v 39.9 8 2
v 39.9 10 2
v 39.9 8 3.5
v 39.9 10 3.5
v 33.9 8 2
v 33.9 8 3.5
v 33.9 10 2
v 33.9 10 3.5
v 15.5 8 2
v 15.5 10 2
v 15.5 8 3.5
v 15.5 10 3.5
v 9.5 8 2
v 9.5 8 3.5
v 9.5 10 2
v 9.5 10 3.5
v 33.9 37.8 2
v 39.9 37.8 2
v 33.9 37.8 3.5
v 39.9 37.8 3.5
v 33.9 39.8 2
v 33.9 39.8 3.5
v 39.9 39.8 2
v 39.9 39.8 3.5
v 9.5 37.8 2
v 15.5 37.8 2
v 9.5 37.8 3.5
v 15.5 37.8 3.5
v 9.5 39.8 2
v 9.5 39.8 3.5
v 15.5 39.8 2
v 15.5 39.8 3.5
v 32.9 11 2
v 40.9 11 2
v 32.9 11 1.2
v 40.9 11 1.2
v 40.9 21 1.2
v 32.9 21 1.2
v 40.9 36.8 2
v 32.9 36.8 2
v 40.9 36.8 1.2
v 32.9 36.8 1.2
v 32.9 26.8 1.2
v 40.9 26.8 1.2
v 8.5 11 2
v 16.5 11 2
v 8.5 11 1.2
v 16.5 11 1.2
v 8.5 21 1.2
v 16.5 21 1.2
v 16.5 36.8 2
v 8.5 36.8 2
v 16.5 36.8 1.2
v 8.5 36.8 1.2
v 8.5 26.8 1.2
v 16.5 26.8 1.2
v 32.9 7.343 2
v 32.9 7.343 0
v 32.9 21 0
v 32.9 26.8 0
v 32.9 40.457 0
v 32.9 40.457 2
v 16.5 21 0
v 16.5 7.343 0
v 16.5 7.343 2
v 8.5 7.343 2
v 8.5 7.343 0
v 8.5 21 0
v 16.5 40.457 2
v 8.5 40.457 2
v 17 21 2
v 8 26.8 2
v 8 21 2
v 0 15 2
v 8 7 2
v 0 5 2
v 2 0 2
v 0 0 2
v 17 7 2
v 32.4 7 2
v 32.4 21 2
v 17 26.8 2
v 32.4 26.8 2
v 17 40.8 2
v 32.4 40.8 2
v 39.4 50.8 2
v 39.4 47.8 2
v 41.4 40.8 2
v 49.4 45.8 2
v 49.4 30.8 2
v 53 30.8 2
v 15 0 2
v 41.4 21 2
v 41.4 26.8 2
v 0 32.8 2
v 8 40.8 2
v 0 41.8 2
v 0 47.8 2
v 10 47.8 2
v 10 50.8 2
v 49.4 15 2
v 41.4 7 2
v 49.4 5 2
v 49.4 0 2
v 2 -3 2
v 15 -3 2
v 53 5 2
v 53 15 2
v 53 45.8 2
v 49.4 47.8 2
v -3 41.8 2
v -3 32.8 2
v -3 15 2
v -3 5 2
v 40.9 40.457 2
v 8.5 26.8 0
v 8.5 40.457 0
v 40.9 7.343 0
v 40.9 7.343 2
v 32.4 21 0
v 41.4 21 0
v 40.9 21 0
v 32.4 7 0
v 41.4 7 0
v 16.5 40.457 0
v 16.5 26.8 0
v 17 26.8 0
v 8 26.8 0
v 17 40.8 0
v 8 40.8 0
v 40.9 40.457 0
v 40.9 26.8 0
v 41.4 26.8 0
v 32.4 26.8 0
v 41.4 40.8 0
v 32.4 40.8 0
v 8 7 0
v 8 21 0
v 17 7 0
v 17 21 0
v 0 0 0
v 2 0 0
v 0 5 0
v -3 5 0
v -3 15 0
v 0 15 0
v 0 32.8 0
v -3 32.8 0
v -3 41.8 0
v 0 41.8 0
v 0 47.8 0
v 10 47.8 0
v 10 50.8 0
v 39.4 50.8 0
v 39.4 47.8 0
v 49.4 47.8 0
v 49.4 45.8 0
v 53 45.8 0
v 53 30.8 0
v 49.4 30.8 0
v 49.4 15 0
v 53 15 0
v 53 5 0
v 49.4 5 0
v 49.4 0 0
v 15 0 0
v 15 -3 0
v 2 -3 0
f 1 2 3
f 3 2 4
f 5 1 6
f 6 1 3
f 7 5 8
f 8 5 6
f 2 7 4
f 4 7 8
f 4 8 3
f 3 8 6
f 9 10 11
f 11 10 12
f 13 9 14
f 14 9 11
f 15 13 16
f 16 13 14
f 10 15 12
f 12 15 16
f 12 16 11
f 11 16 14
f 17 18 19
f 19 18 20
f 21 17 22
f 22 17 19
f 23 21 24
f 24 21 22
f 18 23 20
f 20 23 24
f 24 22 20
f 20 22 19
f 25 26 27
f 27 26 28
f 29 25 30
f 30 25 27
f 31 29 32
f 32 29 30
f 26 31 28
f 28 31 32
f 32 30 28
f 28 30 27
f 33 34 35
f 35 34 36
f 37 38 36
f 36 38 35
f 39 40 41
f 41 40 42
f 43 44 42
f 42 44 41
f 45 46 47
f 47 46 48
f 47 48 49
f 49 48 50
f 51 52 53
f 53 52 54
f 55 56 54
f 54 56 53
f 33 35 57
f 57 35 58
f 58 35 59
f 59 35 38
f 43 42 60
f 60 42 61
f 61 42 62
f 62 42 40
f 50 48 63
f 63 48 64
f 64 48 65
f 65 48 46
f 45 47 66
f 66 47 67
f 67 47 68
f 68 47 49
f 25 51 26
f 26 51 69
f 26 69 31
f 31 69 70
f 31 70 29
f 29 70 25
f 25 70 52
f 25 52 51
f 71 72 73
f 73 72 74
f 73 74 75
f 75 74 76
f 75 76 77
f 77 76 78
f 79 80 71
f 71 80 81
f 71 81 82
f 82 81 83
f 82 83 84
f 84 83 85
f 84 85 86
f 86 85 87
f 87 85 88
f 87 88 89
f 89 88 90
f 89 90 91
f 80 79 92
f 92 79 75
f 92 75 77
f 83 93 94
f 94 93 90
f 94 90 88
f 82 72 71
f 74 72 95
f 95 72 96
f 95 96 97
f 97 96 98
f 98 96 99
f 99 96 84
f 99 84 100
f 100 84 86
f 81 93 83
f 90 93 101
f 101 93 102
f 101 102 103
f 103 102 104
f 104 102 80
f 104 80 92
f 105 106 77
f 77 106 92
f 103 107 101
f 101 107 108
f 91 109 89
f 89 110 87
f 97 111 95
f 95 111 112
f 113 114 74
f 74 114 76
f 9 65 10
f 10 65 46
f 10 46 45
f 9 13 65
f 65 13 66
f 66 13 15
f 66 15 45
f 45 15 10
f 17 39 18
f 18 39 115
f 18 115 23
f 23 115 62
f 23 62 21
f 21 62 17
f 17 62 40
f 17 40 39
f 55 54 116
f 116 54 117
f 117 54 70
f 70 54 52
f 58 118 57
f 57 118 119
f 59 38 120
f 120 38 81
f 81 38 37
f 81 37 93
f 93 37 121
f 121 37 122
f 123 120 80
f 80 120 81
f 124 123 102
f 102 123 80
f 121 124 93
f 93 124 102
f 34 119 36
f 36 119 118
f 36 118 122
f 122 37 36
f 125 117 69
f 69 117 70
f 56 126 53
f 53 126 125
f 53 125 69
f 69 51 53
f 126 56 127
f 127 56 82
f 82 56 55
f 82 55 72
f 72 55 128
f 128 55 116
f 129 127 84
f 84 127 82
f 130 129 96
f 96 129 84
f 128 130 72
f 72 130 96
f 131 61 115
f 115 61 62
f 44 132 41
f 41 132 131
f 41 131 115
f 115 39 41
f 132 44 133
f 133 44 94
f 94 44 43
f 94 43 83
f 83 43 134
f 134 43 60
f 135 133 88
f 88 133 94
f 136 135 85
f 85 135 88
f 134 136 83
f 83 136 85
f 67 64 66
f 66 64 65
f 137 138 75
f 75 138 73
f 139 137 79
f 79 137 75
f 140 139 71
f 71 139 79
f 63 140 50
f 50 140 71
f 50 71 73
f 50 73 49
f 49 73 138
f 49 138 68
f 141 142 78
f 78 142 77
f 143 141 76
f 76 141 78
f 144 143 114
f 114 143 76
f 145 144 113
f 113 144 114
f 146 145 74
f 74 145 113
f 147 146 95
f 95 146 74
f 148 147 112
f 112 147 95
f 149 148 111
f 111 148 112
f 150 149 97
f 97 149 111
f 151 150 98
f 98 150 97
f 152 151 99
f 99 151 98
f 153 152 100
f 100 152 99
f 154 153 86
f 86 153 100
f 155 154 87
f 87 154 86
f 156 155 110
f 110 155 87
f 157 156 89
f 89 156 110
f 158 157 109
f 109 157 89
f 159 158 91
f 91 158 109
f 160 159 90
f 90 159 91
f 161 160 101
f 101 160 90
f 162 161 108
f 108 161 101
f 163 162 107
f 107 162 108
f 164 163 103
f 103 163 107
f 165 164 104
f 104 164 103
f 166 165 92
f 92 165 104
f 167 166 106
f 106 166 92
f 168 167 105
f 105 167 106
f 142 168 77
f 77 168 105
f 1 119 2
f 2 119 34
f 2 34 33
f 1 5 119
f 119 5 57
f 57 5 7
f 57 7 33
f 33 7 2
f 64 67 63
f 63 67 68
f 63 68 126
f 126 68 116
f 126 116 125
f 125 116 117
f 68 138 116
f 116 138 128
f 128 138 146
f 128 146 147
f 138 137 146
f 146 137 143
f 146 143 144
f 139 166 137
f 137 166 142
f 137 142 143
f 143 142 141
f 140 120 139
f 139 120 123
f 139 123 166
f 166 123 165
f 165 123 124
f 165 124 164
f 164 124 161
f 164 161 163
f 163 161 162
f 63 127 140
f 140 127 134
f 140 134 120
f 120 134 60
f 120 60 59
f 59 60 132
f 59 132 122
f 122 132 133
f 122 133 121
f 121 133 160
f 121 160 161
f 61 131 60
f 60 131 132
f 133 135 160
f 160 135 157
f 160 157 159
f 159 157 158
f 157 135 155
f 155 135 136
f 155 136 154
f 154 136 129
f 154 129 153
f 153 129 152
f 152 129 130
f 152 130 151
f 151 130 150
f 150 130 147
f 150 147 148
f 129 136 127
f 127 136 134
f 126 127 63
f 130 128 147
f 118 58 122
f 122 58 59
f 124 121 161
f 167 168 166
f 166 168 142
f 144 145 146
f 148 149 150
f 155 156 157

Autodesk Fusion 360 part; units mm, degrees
sketch "Sketch1" plane through (0, 0, 0) normal (0, 0, 1) x (1, 0, 0)
  line L0 (0, 47.8) -> (49.4, 47.8)
  line L1 (49.4, 47.8) -> (49.4, 0)
  line L2 (49.4, 0) -> (0, 0)
  line L3 (0, 0) -> (0, 47.8)
  line L4 (10, 47.8) -> (10, 50.8)
  line L5 (10, 50.8) -> (39.4, 50.8)
  line L6 (39.4, 50.8) -> (39.4, 47.8)
  line L7 (49.4, 45.8) -> (53, 45.8)
  line L8 (53, 45.8) -> (53, 30.8)
  line L9 (53, 30.8) -> (49.4, 30.8)
  line L10 (49.4, 15) -> (53, 15)
  line L11 (53, 15) -> (53, 5)
  line L12 (53, 5) -> (49.4, 5)
  line L13 (0, 41.8) -> (-3, 41.8)
  line L14 (-3, 41.8) -> (-3, 32.8)
  line L15 (-3, 32.8) -> (0, 32.8)
  line L16 (2, 0) -> (2, -3)
  line L17 (2, -3) -> (15, -3)
  line L18 (15, -3) -> (15, 0)
  line L19 (0, 5) -> (-3, 5)
  line L20 (-3, 5) -> (-3, 15)
  line L21 (-3, 15) -> (0, 15)
  line L22 (8.5, 36.8) -> (8.5, 26.8)
  line L23 (8.5, 26.8) -> (8, 26.8)
  line L24 (8, 26.8) -> (8, 40.8)
  line L25 (8, 40.8) -> (17, 40.8)
  line L26 (17, 40.8) -> (17, 26.8)
  line L27 (17, 26.8) -> (16.5, 26.8)
  line L28 (16.5, 26.8) -> (16.5, 36.8)
  line L29 (16.5, 36.8) -> (8.5, 36.8)
  line L30 (9.5, 39.8) -> (9.5, 37.8)
  line L31 (9.5, 37.8) -> (15.5, 37.8)
  line L32 (15.5, 37.8) -> (15.5, 39.8)
  line L33 (15.5, 39.8) -> (9.5, 39.8)
  line L34 (8.5, 36.8) -> (8.5, 40.4566)
  line L35 (8.5, 40.4566) -> (16.5, 40.4566)
  line L36 (16.5, 40.4566) -> (16.5, 36.8)
  line L37 (8.5, 26.8) -> (16.5, 26.8)
  line L38 (33.9, 39.8) -> (33.9, 37.8)
  line L39 (32.9, 36.8) -> (32.9, 40.4566)
  line L40 (32.9, 26.8) -> (32.4, 26.8)
  line L41 (32.4, 26.8) -> (32.4, 40.8)
  line L42 (40.9, 26.8) -> (40.9, 36.8)
  line L43 (40.9, 36.8) -> (32.9, 36.8)
  line L44 (32.4, 40.8) -> (41.4, 40.8)
  line L45 (40.9, 40.4566) -> (40.9, 36.8)
  line L46 (32.9, 36.8) -> (32.9, 26.8)
  line L47 (41.4, 40.8) -> (41.4, 26.8)
  line L48 (32.9, 40.4566) -> (40.9, 40.4566)
  line L49 (41.4, 26.8) -> (40.9, 26.8)
  line L50 (32.9, 26.8) -> (40.9, 26.8)
  line L51 (33.9, 37.8) -> (39.9, 37.8)
  line L52 (39.9, 37.8) -> (39.9, 39.8)
  line L53 (39.9, 39.8) -> (33.9, 39.8)
  line L54 (16.5, 11) -> (16.5, 7.3434)
  line L55 (40.9, 11) -> (40.9, 7.3434)
  line L56 (39.9, 8) -> (39.9, 10)
  line L57 (16.5, 21) -> (17, 21)
  line L58 (41.4, 21) -> (41.4, 7)
  line L59 (15.5, 10) -> (9.5, 10)
  line L60 (32.9, 11) -> (40.9, 11)
  line L61 (16.5, 11) -> (16.5, 21)
  line L62 (15.5, 8) -> (15.5, 10)
  line L63 (40.9, 21) -> (41.4, 21)
  line L64 (9.5, 8) -> (15.5, 8)
  line L65 (40.9, 11) -> (40.9, 21)
  line L66 (16.5, 7.3434) -> (8.5, 7.3434)
  line L67 (40.9, 21) -> (32.9, 21)
  line L68 (32.4, 21) -> (32.9, 21)
  line L69 (9.5, 10) -> (9.5, 8)
  line L70 (41.4, 7) -> (32.4, 7)
  line L71 (33.9, 8) -> (39.9, 8)
  line L72 (40.9, 7.3434) -> (32.9, 7.3434)
  line L73 (39.9, 10) -> (33.9, 10)
  line L74 (32.9, 7.3434) -> (32.9, 11)
  line L75 (33.9, 10) -> (33.9, 8)
  line L76 (17, 21) -> (17, 7)
  line L77 (8, 7) -> (8, 21)
  line L78 (32.4, 7) -> (32.4, 21)
  line L79 (8.5, 7.3434) -> (8.5, 11)
  line L80 (16.5, 21) -> (8.5, 21)
  line L81 (8.5, 21) -> (8.5, 11)
  line L82 (17, 7) -> (8, 7)
  line L83 (32.9, 21) -> (32.9, 11)
  line L84 (8, 21) -> (8.5, 21)
  line L85 (8.5, 11) -> (16.5, 11)
  point P0 (24.7, 23.9)
  dimension "d1" = 49.4
  dimension "d2" = 47.8
  dimension "d3" = 2
  dimension "d4" = 15
  dimension "d5" = 3
  dimension "d6" = 5
  dimension "d7" = 10
  dimension "d8" = 3
  dimension "d9" = 6
  dimension "d10" = 15
  dimension "d11" = 3
  dimension "d12" = 10
  dimension "d13" = 10
  dimension "d14" = 3
  dimension "d15" = 2
  dimension "d16" = 15
  dimension "d17" = 5
  dimension "d18" = 10
  dimension "d19" = 0.5
  dimension "d20" = 0.5
  dimension "d21" = 10
  dimension "d23" = 1
  dimension "d24" = 1
  dimension "d26" = 2
  dimension "d27" = 1
  dimension "d28" = 1
  dimension "d29" = 7
  dimension "d30" = 8
  dimension "d31" = 24.7
  dimension "d32" = 23.9
  dimension "d33" = 8
  dimension "d34" = 9
  dimension "d37" = 24.4
  dimension "d38" = 0
  dimension "d40" = 360
extrude "Extrude1" add sketch "Sketch1" along normal blind 2 contours L0 L1 L2 L3 | L0 L4 L5 L6 | L3 L13 L14 L15 | L3 L19 L20 L21 | L1 L7 L8 L9 | L1 L10 L11 L12 | L2 L16 L17 L18 | L22 L28 L29 L37 | L29 L34 L35 L36 | L30 L31 L32 L33 | L38 L51 L52 L53 | L39 L43 L45 L48 | L42 L43 L46 L50 | L61 L80 L81 L85 | L54 L66 L79 L85 | L55 L60 L72 L74 | L60 L65 L67 L83 | L56 L71 L73 L75 | L59 L62 L64 L69
extrude "Extrude2" cut sketch "Sketch1" against normal blind 0.8 from surface at 2 contours L22 L28 L29 L37 | L42 L43 L46 L50 | L61 L80 L81 L85 | L60 L65 L67 L83
extrude "Extrude3" add sketch "Sketch1" along normal blind 1.5 from surface at 2 contours L30 L31 L32 L33 | L38 L51 L52 L53 | L56 L71 L73 L75 | L59 L62 L64 L69
